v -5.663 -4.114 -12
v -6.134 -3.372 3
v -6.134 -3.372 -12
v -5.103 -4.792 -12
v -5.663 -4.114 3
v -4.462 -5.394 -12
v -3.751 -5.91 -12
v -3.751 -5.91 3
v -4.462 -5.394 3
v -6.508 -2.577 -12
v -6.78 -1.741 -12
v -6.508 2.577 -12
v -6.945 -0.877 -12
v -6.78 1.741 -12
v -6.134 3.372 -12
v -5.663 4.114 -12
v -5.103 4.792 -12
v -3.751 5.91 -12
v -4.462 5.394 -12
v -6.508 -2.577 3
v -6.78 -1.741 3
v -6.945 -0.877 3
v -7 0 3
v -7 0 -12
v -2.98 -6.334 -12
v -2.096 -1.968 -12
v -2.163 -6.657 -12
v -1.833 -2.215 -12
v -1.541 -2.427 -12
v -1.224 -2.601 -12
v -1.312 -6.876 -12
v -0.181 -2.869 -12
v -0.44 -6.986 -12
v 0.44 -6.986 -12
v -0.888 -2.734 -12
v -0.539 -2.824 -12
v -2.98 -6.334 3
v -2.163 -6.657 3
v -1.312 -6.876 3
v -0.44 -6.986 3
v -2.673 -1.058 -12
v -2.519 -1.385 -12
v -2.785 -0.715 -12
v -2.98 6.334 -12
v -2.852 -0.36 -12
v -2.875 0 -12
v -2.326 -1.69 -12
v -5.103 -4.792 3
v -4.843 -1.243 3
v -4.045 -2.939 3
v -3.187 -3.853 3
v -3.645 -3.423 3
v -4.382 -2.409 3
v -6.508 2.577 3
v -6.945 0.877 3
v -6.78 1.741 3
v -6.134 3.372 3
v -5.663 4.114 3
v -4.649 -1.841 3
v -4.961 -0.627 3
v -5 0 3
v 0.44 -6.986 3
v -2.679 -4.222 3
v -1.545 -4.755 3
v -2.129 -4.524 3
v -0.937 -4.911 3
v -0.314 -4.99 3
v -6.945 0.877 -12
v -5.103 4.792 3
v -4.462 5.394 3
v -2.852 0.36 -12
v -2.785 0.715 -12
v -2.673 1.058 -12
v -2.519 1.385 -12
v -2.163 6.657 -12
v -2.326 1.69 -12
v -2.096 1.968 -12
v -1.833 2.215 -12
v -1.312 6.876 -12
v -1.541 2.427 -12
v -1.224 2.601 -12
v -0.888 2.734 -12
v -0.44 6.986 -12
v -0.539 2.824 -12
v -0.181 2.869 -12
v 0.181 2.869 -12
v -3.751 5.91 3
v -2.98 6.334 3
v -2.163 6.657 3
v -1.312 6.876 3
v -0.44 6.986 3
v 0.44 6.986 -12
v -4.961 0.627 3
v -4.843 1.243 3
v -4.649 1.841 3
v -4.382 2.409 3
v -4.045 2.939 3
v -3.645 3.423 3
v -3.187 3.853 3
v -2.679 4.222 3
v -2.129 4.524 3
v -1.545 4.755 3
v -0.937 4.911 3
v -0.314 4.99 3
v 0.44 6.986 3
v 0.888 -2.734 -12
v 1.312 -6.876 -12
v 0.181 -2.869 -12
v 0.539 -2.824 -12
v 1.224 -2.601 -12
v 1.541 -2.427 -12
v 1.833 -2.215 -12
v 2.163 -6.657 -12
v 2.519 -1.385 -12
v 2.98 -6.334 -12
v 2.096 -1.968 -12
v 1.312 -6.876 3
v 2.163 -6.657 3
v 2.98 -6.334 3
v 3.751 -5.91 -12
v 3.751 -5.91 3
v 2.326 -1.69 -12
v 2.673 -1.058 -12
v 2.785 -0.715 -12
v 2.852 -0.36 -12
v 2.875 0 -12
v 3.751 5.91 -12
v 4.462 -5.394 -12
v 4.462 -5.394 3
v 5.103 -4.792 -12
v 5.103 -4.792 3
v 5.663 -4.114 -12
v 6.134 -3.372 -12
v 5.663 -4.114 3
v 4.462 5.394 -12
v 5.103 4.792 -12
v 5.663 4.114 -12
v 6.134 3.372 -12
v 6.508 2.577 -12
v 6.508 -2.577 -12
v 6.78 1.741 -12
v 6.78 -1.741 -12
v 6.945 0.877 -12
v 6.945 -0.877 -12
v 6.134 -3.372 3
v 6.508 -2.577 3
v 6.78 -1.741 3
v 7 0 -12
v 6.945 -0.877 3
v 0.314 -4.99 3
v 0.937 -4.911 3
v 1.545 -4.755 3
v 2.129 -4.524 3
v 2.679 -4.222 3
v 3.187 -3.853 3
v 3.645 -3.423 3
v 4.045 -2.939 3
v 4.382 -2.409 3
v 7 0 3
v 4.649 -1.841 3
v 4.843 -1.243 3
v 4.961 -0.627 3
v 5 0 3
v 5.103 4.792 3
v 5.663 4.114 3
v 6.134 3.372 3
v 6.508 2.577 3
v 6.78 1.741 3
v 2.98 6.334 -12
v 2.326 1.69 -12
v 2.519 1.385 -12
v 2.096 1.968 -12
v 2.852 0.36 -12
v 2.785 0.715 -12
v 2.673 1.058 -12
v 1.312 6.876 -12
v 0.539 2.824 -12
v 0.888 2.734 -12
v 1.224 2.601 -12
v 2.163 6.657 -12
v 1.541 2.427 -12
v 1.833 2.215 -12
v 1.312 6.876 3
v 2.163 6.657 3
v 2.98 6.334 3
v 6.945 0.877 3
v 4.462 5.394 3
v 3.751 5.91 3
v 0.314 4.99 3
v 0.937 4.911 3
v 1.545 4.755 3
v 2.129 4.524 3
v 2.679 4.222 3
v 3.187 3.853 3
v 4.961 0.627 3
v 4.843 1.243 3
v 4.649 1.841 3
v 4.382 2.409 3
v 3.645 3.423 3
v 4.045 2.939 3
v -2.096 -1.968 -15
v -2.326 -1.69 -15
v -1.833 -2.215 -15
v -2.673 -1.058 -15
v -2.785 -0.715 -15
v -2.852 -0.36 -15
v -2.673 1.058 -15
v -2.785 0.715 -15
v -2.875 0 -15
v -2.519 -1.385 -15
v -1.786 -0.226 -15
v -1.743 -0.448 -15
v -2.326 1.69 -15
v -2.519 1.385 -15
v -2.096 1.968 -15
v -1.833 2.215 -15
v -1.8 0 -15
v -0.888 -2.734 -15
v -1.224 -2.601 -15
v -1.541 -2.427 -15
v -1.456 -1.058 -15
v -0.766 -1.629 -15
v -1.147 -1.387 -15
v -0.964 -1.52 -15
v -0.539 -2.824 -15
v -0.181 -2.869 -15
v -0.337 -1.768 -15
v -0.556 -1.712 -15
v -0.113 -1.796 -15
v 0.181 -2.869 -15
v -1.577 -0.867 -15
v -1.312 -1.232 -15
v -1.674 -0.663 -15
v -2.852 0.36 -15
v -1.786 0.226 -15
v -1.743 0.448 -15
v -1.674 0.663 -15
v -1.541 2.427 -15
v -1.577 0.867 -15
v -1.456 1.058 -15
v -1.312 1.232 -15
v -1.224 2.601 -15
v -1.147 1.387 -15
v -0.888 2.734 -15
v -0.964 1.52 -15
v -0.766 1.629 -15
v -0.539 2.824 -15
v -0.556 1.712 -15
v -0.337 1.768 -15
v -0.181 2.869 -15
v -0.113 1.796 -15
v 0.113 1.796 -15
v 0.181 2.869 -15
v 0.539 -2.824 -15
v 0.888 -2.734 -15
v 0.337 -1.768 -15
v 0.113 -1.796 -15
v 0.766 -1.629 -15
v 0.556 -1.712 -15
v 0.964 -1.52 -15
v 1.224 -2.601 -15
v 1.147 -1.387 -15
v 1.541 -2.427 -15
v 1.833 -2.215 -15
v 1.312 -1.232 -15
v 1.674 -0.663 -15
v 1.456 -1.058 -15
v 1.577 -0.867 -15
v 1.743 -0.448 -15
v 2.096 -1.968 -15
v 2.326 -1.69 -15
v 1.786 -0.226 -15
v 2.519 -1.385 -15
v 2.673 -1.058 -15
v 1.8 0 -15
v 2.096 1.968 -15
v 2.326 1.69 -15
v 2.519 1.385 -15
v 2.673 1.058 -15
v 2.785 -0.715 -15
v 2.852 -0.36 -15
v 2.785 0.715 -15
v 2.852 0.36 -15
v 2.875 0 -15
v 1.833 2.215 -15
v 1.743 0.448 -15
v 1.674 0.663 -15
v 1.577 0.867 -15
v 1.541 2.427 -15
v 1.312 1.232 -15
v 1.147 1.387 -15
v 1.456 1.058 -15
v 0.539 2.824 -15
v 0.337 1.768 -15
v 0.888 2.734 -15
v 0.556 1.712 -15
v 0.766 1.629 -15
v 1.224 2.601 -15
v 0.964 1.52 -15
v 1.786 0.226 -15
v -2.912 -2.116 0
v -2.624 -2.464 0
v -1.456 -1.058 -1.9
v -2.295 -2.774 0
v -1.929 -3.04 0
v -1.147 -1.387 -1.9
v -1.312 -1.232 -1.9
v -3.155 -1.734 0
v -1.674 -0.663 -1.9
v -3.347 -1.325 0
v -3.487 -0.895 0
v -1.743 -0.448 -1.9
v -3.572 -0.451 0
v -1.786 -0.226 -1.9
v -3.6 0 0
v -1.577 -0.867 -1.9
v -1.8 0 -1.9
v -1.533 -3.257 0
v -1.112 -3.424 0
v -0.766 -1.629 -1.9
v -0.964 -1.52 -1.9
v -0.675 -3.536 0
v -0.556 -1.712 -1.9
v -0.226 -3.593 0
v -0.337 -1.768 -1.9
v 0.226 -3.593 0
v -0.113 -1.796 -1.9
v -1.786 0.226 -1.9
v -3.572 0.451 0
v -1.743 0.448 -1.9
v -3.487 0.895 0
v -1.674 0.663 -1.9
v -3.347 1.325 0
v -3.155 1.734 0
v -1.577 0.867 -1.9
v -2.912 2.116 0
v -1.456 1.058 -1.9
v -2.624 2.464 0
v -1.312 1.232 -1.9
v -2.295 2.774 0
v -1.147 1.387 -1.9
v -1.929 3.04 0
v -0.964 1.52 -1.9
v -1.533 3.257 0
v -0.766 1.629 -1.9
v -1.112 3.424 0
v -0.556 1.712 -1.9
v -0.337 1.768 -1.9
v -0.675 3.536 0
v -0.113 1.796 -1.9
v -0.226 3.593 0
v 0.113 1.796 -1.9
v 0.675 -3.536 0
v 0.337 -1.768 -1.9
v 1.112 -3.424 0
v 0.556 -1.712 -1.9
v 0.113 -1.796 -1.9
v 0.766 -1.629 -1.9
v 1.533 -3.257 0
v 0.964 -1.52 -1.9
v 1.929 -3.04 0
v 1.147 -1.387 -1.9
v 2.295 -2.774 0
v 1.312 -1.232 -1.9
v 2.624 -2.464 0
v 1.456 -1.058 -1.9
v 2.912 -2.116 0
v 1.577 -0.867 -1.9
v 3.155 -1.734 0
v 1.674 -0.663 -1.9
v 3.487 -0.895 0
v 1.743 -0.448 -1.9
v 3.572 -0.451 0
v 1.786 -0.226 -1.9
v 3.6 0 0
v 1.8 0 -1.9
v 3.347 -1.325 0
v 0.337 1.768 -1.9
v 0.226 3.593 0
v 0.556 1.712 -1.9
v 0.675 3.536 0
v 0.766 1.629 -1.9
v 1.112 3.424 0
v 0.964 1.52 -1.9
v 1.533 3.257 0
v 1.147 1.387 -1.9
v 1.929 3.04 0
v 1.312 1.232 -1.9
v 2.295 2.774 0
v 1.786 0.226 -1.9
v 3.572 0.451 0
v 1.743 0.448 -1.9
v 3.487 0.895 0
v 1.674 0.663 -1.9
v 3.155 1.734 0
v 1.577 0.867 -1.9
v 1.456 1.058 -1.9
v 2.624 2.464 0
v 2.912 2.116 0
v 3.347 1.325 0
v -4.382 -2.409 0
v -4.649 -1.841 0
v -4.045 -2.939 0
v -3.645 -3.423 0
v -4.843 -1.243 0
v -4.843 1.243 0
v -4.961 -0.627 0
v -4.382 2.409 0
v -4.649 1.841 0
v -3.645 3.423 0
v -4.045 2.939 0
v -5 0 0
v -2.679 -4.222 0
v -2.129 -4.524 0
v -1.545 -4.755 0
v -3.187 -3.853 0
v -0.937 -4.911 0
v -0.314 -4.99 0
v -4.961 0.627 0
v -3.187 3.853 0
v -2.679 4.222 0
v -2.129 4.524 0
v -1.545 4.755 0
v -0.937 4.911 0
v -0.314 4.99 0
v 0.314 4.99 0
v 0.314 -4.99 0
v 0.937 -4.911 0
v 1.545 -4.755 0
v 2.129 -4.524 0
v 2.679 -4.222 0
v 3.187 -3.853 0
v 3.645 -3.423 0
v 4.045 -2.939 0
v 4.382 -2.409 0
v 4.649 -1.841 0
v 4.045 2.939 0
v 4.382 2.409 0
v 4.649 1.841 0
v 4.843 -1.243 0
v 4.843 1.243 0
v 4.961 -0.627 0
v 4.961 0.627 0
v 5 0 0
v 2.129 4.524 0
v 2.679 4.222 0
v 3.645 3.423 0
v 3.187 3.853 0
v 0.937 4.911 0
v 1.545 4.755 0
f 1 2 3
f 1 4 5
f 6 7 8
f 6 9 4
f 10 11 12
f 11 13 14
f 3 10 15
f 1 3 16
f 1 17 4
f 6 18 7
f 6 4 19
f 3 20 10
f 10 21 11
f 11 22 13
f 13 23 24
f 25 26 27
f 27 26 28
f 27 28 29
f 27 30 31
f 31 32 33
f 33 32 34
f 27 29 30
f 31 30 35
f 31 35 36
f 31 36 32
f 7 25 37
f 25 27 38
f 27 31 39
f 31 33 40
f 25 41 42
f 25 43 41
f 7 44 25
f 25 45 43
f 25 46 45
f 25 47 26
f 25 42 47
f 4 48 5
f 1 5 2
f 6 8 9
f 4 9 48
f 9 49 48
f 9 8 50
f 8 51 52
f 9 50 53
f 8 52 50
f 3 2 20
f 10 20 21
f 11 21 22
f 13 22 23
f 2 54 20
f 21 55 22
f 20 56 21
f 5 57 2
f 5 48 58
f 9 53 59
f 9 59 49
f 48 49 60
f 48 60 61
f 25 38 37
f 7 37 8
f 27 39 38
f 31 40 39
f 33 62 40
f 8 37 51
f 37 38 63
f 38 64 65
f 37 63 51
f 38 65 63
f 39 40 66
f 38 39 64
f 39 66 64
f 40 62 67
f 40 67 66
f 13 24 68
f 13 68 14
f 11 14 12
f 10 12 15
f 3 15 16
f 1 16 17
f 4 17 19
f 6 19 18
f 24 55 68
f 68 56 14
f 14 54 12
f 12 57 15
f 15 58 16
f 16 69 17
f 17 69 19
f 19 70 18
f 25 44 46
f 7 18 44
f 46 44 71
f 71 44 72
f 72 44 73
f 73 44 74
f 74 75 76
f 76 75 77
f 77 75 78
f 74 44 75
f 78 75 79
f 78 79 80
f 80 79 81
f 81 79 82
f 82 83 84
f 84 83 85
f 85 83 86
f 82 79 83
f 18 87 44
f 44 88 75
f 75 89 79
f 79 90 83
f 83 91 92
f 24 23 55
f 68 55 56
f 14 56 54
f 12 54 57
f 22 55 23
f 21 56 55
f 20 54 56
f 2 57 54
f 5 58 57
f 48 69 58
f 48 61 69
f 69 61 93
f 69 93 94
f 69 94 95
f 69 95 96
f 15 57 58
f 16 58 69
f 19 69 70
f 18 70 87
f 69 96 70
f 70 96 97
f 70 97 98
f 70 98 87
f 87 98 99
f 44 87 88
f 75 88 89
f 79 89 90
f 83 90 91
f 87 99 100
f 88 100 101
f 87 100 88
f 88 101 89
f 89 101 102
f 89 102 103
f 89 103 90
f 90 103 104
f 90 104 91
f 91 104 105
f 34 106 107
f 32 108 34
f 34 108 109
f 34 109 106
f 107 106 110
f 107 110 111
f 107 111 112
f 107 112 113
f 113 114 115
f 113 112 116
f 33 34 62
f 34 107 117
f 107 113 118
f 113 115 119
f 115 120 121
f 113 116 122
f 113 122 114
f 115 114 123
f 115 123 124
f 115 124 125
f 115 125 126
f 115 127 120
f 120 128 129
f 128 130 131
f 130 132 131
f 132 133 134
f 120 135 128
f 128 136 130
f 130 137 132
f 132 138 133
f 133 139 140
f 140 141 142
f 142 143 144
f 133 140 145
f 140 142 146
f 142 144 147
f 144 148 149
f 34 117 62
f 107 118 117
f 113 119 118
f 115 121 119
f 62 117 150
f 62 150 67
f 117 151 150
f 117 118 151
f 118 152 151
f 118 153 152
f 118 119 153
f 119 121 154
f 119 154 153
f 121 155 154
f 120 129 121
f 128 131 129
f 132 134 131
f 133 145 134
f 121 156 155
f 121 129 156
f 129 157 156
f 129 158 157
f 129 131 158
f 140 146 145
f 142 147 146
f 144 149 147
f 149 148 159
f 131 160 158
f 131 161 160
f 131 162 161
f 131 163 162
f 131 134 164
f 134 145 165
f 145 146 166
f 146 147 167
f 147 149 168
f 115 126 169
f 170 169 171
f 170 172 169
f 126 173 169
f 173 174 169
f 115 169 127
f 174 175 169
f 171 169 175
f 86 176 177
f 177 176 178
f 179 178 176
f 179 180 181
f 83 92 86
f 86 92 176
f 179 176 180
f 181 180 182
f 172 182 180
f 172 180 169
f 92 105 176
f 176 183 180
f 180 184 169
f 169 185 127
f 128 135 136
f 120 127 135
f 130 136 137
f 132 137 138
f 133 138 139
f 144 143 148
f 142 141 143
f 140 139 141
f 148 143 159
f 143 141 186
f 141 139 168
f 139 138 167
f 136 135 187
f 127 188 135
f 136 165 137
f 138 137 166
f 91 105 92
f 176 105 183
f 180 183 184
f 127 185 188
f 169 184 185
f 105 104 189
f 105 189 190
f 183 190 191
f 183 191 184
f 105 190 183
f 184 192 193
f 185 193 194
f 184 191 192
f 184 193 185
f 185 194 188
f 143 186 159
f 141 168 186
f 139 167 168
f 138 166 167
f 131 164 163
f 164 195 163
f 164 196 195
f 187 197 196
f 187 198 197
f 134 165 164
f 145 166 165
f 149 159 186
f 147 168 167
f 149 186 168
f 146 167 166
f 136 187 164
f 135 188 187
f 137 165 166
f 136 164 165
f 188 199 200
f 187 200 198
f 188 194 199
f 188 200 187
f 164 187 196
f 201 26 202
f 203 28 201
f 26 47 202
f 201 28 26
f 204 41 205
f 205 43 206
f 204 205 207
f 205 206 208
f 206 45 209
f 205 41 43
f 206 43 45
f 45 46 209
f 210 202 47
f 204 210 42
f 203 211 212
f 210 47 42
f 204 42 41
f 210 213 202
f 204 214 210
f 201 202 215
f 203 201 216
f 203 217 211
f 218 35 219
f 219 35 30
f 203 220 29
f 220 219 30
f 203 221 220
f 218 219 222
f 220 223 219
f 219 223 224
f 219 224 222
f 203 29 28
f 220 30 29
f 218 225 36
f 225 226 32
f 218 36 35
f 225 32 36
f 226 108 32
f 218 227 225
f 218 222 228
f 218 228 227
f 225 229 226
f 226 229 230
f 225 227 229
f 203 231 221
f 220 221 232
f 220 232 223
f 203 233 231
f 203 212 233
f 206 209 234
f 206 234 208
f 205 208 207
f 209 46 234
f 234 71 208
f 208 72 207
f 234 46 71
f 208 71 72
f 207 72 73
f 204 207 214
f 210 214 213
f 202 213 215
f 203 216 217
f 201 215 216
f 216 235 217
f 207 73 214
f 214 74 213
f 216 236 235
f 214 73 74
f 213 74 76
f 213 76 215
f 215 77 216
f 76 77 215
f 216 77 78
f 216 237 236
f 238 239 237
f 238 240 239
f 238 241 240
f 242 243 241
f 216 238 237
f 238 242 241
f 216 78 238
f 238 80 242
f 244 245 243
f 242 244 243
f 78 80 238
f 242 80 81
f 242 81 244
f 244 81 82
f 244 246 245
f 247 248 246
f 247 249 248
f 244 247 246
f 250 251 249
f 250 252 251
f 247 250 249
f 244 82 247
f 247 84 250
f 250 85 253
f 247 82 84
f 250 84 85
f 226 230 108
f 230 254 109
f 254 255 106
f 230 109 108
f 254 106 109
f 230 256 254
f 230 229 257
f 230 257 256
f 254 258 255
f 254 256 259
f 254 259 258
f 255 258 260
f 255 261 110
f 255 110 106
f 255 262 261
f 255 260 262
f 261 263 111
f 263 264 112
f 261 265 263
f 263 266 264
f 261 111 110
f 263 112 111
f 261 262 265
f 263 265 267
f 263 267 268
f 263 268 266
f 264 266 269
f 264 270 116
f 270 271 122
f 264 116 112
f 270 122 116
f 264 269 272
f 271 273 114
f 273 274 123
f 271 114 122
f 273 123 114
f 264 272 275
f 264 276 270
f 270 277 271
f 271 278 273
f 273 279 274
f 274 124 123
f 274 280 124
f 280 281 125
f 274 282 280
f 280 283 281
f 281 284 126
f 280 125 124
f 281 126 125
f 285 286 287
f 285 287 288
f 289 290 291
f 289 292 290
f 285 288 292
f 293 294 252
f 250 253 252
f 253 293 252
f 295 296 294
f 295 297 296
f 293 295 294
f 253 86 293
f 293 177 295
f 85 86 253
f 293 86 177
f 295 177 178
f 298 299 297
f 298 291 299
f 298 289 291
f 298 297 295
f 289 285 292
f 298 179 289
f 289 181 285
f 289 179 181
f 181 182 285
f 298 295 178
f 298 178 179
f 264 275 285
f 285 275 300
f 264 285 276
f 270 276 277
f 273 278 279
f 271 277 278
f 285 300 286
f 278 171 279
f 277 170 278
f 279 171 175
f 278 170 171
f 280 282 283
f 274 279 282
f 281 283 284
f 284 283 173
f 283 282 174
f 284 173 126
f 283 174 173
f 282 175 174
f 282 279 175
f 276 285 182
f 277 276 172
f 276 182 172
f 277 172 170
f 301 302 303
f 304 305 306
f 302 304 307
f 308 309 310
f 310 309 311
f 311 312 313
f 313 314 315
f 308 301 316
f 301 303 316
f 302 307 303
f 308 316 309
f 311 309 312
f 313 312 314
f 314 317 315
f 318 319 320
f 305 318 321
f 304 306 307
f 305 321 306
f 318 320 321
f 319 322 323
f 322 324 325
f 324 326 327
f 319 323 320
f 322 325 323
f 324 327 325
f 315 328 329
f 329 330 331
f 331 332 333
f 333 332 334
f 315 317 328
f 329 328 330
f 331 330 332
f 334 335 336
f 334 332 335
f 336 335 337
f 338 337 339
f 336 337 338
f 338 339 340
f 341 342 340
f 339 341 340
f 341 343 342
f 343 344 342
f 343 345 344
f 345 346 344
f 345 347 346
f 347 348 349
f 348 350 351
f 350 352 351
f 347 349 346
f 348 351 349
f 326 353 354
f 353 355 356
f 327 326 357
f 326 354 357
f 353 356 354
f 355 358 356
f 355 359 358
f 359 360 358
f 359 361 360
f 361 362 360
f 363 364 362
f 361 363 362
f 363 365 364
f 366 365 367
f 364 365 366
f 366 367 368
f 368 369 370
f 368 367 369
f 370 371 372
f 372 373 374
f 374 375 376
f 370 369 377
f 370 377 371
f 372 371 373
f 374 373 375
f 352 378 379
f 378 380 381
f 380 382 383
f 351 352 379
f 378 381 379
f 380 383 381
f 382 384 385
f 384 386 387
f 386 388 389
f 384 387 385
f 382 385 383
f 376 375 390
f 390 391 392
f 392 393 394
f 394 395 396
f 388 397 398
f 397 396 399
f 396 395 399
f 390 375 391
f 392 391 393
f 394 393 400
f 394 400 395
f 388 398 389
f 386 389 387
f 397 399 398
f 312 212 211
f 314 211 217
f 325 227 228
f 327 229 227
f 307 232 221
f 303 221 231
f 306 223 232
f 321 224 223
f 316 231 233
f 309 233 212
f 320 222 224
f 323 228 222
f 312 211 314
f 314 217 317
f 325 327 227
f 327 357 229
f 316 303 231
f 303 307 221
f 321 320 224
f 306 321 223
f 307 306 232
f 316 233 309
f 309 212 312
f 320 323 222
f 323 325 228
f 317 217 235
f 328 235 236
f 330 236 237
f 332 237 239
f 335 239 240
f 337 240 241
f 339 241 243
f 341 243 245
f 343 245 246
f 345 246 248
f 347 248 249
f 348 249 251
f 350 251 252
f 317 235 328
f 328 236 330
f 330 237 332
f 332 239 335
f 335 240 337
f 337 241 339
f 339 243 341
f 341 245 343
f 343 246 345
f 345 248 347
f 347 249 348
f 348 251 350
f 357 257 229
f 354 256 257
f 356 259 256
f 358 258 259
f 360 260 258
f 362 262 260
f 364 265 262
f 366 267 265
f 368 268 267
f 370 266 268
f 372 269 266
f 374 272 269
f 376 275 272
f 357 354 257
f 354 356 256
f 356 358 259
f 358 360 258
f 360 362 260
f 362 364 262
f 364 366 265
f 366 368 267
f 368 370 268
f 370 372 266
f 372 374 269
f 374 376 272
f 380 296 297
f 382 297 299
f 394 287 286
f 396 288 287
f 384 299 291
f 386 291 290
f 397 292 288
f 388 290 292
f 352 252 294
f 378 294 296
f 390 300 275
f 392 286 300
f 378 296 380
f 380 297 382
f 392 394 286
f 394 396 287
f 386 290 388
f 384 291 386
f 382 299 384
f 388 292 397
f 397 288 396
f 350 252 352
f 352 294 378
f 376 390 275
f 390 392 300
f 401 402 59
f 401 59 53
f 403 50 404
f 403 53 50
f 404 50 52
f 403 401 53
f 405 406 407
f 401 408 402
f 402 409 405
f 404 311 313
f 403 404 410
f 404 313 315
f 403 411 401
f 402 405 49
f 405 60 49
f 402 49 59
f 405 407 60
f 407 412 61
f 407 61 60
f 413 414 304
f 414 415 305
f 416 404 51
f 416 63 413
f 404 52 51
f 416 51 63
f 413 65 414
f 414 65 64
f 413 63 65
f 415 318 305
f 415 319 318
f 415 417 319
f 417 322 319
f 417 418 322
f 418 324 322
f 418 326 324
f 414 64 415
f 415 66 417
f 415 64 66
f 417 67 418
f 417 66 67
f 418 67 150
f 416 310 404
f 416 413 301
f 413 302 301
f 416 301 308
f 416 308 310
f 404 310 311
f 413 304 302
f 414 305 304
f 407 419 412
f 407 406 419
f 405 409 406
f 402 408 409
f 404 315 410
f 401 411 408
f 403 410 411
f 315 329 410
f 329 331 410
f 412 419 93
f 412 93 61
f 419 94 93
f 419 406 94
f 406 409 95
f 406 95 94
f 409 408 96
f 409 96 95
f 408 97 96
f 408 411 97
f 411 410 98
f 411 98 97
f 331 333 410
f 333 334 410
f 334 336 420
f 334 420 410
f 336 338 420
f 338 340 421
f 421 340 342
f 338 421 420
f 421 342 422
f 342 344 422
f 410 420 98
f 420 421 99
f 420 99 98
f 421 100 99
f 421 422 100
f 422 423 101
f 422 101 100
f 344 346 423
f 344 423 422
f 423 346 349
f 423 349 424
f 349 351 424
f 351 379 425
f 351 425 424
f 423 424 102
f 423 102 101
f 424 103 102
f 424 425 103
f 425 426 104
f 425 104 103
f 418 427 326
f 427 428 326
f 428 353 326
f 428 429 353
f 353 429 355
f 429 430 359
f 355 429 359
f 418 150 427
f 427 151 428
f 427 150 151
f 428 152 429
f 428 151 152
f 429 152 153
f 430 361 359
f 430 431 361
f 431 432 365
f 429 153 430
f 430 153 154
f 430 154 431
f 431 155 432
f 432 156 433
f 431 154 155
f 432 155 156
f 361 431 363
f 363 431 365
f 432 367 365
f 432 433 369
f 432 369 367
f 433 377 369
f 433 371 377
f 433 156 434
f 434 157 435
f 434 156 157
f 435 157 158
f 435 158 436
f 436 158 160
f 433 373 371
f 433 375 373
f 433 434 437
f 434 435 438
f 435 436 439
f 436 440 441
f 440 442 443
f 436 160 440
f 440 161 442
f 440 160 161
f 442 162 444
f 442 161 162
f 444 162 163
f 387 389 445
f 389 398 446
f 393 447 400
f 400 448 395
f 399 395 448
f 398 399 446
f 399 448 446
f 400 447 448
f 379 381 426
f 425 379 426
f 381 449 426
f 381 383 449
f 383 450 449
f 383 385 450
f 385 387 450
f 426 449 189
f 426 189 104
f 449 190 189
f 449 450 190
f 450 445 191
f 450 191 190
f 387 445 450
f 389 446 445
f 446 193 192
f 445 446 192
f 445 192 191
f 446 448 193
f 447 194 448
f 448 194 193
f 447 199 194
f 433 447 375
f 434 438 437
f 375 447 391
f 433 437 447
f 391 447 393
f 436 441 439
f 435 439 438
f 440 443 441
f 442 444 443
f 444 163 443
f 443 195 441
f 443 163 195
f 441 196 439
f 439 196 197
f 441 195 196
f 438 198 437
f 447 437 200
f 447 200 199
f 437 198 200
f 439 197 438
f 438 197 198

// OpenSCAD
$fn = 50;


difference() {
	union() {
		translate(v = [0, 0, -12.0000000000]) {
			cylinder(h = 15, r = 7.0000000000);
		}
		#translate(v = [0, 0, -15.0000000000]) {
			cylinder(h = 15, r = 2.8750000000);
		}
	}
	union() {
		translate(v = [0, 0, 0]) {
			rotate(a = [0, 0, 0]) {
				difference() {
					union() {
						translate(v = [0, 0, -15.0000000000]) {
							cylinder(h = 15, r = 1.5000000000);
						}
						translate(v = [0, 0, -1.9000000000]) {
							cylinder(h = 1.9000000000, r1 = 1.8000000000, r2 = 3.6000000000);
						}
						translate(v = [0, 0, -15.0000000000]) {
							cylinder(h = 15, r = 1.8000000000);
						}
						translate(v = [0, 0, -15.0000000000]) {
							cylinder(h = 15, r = 1.5000000000);
						}
					}
					union();
				}
			}
		}
		#cylinder(h = 3, r = 5.0000000000);
	}
}
